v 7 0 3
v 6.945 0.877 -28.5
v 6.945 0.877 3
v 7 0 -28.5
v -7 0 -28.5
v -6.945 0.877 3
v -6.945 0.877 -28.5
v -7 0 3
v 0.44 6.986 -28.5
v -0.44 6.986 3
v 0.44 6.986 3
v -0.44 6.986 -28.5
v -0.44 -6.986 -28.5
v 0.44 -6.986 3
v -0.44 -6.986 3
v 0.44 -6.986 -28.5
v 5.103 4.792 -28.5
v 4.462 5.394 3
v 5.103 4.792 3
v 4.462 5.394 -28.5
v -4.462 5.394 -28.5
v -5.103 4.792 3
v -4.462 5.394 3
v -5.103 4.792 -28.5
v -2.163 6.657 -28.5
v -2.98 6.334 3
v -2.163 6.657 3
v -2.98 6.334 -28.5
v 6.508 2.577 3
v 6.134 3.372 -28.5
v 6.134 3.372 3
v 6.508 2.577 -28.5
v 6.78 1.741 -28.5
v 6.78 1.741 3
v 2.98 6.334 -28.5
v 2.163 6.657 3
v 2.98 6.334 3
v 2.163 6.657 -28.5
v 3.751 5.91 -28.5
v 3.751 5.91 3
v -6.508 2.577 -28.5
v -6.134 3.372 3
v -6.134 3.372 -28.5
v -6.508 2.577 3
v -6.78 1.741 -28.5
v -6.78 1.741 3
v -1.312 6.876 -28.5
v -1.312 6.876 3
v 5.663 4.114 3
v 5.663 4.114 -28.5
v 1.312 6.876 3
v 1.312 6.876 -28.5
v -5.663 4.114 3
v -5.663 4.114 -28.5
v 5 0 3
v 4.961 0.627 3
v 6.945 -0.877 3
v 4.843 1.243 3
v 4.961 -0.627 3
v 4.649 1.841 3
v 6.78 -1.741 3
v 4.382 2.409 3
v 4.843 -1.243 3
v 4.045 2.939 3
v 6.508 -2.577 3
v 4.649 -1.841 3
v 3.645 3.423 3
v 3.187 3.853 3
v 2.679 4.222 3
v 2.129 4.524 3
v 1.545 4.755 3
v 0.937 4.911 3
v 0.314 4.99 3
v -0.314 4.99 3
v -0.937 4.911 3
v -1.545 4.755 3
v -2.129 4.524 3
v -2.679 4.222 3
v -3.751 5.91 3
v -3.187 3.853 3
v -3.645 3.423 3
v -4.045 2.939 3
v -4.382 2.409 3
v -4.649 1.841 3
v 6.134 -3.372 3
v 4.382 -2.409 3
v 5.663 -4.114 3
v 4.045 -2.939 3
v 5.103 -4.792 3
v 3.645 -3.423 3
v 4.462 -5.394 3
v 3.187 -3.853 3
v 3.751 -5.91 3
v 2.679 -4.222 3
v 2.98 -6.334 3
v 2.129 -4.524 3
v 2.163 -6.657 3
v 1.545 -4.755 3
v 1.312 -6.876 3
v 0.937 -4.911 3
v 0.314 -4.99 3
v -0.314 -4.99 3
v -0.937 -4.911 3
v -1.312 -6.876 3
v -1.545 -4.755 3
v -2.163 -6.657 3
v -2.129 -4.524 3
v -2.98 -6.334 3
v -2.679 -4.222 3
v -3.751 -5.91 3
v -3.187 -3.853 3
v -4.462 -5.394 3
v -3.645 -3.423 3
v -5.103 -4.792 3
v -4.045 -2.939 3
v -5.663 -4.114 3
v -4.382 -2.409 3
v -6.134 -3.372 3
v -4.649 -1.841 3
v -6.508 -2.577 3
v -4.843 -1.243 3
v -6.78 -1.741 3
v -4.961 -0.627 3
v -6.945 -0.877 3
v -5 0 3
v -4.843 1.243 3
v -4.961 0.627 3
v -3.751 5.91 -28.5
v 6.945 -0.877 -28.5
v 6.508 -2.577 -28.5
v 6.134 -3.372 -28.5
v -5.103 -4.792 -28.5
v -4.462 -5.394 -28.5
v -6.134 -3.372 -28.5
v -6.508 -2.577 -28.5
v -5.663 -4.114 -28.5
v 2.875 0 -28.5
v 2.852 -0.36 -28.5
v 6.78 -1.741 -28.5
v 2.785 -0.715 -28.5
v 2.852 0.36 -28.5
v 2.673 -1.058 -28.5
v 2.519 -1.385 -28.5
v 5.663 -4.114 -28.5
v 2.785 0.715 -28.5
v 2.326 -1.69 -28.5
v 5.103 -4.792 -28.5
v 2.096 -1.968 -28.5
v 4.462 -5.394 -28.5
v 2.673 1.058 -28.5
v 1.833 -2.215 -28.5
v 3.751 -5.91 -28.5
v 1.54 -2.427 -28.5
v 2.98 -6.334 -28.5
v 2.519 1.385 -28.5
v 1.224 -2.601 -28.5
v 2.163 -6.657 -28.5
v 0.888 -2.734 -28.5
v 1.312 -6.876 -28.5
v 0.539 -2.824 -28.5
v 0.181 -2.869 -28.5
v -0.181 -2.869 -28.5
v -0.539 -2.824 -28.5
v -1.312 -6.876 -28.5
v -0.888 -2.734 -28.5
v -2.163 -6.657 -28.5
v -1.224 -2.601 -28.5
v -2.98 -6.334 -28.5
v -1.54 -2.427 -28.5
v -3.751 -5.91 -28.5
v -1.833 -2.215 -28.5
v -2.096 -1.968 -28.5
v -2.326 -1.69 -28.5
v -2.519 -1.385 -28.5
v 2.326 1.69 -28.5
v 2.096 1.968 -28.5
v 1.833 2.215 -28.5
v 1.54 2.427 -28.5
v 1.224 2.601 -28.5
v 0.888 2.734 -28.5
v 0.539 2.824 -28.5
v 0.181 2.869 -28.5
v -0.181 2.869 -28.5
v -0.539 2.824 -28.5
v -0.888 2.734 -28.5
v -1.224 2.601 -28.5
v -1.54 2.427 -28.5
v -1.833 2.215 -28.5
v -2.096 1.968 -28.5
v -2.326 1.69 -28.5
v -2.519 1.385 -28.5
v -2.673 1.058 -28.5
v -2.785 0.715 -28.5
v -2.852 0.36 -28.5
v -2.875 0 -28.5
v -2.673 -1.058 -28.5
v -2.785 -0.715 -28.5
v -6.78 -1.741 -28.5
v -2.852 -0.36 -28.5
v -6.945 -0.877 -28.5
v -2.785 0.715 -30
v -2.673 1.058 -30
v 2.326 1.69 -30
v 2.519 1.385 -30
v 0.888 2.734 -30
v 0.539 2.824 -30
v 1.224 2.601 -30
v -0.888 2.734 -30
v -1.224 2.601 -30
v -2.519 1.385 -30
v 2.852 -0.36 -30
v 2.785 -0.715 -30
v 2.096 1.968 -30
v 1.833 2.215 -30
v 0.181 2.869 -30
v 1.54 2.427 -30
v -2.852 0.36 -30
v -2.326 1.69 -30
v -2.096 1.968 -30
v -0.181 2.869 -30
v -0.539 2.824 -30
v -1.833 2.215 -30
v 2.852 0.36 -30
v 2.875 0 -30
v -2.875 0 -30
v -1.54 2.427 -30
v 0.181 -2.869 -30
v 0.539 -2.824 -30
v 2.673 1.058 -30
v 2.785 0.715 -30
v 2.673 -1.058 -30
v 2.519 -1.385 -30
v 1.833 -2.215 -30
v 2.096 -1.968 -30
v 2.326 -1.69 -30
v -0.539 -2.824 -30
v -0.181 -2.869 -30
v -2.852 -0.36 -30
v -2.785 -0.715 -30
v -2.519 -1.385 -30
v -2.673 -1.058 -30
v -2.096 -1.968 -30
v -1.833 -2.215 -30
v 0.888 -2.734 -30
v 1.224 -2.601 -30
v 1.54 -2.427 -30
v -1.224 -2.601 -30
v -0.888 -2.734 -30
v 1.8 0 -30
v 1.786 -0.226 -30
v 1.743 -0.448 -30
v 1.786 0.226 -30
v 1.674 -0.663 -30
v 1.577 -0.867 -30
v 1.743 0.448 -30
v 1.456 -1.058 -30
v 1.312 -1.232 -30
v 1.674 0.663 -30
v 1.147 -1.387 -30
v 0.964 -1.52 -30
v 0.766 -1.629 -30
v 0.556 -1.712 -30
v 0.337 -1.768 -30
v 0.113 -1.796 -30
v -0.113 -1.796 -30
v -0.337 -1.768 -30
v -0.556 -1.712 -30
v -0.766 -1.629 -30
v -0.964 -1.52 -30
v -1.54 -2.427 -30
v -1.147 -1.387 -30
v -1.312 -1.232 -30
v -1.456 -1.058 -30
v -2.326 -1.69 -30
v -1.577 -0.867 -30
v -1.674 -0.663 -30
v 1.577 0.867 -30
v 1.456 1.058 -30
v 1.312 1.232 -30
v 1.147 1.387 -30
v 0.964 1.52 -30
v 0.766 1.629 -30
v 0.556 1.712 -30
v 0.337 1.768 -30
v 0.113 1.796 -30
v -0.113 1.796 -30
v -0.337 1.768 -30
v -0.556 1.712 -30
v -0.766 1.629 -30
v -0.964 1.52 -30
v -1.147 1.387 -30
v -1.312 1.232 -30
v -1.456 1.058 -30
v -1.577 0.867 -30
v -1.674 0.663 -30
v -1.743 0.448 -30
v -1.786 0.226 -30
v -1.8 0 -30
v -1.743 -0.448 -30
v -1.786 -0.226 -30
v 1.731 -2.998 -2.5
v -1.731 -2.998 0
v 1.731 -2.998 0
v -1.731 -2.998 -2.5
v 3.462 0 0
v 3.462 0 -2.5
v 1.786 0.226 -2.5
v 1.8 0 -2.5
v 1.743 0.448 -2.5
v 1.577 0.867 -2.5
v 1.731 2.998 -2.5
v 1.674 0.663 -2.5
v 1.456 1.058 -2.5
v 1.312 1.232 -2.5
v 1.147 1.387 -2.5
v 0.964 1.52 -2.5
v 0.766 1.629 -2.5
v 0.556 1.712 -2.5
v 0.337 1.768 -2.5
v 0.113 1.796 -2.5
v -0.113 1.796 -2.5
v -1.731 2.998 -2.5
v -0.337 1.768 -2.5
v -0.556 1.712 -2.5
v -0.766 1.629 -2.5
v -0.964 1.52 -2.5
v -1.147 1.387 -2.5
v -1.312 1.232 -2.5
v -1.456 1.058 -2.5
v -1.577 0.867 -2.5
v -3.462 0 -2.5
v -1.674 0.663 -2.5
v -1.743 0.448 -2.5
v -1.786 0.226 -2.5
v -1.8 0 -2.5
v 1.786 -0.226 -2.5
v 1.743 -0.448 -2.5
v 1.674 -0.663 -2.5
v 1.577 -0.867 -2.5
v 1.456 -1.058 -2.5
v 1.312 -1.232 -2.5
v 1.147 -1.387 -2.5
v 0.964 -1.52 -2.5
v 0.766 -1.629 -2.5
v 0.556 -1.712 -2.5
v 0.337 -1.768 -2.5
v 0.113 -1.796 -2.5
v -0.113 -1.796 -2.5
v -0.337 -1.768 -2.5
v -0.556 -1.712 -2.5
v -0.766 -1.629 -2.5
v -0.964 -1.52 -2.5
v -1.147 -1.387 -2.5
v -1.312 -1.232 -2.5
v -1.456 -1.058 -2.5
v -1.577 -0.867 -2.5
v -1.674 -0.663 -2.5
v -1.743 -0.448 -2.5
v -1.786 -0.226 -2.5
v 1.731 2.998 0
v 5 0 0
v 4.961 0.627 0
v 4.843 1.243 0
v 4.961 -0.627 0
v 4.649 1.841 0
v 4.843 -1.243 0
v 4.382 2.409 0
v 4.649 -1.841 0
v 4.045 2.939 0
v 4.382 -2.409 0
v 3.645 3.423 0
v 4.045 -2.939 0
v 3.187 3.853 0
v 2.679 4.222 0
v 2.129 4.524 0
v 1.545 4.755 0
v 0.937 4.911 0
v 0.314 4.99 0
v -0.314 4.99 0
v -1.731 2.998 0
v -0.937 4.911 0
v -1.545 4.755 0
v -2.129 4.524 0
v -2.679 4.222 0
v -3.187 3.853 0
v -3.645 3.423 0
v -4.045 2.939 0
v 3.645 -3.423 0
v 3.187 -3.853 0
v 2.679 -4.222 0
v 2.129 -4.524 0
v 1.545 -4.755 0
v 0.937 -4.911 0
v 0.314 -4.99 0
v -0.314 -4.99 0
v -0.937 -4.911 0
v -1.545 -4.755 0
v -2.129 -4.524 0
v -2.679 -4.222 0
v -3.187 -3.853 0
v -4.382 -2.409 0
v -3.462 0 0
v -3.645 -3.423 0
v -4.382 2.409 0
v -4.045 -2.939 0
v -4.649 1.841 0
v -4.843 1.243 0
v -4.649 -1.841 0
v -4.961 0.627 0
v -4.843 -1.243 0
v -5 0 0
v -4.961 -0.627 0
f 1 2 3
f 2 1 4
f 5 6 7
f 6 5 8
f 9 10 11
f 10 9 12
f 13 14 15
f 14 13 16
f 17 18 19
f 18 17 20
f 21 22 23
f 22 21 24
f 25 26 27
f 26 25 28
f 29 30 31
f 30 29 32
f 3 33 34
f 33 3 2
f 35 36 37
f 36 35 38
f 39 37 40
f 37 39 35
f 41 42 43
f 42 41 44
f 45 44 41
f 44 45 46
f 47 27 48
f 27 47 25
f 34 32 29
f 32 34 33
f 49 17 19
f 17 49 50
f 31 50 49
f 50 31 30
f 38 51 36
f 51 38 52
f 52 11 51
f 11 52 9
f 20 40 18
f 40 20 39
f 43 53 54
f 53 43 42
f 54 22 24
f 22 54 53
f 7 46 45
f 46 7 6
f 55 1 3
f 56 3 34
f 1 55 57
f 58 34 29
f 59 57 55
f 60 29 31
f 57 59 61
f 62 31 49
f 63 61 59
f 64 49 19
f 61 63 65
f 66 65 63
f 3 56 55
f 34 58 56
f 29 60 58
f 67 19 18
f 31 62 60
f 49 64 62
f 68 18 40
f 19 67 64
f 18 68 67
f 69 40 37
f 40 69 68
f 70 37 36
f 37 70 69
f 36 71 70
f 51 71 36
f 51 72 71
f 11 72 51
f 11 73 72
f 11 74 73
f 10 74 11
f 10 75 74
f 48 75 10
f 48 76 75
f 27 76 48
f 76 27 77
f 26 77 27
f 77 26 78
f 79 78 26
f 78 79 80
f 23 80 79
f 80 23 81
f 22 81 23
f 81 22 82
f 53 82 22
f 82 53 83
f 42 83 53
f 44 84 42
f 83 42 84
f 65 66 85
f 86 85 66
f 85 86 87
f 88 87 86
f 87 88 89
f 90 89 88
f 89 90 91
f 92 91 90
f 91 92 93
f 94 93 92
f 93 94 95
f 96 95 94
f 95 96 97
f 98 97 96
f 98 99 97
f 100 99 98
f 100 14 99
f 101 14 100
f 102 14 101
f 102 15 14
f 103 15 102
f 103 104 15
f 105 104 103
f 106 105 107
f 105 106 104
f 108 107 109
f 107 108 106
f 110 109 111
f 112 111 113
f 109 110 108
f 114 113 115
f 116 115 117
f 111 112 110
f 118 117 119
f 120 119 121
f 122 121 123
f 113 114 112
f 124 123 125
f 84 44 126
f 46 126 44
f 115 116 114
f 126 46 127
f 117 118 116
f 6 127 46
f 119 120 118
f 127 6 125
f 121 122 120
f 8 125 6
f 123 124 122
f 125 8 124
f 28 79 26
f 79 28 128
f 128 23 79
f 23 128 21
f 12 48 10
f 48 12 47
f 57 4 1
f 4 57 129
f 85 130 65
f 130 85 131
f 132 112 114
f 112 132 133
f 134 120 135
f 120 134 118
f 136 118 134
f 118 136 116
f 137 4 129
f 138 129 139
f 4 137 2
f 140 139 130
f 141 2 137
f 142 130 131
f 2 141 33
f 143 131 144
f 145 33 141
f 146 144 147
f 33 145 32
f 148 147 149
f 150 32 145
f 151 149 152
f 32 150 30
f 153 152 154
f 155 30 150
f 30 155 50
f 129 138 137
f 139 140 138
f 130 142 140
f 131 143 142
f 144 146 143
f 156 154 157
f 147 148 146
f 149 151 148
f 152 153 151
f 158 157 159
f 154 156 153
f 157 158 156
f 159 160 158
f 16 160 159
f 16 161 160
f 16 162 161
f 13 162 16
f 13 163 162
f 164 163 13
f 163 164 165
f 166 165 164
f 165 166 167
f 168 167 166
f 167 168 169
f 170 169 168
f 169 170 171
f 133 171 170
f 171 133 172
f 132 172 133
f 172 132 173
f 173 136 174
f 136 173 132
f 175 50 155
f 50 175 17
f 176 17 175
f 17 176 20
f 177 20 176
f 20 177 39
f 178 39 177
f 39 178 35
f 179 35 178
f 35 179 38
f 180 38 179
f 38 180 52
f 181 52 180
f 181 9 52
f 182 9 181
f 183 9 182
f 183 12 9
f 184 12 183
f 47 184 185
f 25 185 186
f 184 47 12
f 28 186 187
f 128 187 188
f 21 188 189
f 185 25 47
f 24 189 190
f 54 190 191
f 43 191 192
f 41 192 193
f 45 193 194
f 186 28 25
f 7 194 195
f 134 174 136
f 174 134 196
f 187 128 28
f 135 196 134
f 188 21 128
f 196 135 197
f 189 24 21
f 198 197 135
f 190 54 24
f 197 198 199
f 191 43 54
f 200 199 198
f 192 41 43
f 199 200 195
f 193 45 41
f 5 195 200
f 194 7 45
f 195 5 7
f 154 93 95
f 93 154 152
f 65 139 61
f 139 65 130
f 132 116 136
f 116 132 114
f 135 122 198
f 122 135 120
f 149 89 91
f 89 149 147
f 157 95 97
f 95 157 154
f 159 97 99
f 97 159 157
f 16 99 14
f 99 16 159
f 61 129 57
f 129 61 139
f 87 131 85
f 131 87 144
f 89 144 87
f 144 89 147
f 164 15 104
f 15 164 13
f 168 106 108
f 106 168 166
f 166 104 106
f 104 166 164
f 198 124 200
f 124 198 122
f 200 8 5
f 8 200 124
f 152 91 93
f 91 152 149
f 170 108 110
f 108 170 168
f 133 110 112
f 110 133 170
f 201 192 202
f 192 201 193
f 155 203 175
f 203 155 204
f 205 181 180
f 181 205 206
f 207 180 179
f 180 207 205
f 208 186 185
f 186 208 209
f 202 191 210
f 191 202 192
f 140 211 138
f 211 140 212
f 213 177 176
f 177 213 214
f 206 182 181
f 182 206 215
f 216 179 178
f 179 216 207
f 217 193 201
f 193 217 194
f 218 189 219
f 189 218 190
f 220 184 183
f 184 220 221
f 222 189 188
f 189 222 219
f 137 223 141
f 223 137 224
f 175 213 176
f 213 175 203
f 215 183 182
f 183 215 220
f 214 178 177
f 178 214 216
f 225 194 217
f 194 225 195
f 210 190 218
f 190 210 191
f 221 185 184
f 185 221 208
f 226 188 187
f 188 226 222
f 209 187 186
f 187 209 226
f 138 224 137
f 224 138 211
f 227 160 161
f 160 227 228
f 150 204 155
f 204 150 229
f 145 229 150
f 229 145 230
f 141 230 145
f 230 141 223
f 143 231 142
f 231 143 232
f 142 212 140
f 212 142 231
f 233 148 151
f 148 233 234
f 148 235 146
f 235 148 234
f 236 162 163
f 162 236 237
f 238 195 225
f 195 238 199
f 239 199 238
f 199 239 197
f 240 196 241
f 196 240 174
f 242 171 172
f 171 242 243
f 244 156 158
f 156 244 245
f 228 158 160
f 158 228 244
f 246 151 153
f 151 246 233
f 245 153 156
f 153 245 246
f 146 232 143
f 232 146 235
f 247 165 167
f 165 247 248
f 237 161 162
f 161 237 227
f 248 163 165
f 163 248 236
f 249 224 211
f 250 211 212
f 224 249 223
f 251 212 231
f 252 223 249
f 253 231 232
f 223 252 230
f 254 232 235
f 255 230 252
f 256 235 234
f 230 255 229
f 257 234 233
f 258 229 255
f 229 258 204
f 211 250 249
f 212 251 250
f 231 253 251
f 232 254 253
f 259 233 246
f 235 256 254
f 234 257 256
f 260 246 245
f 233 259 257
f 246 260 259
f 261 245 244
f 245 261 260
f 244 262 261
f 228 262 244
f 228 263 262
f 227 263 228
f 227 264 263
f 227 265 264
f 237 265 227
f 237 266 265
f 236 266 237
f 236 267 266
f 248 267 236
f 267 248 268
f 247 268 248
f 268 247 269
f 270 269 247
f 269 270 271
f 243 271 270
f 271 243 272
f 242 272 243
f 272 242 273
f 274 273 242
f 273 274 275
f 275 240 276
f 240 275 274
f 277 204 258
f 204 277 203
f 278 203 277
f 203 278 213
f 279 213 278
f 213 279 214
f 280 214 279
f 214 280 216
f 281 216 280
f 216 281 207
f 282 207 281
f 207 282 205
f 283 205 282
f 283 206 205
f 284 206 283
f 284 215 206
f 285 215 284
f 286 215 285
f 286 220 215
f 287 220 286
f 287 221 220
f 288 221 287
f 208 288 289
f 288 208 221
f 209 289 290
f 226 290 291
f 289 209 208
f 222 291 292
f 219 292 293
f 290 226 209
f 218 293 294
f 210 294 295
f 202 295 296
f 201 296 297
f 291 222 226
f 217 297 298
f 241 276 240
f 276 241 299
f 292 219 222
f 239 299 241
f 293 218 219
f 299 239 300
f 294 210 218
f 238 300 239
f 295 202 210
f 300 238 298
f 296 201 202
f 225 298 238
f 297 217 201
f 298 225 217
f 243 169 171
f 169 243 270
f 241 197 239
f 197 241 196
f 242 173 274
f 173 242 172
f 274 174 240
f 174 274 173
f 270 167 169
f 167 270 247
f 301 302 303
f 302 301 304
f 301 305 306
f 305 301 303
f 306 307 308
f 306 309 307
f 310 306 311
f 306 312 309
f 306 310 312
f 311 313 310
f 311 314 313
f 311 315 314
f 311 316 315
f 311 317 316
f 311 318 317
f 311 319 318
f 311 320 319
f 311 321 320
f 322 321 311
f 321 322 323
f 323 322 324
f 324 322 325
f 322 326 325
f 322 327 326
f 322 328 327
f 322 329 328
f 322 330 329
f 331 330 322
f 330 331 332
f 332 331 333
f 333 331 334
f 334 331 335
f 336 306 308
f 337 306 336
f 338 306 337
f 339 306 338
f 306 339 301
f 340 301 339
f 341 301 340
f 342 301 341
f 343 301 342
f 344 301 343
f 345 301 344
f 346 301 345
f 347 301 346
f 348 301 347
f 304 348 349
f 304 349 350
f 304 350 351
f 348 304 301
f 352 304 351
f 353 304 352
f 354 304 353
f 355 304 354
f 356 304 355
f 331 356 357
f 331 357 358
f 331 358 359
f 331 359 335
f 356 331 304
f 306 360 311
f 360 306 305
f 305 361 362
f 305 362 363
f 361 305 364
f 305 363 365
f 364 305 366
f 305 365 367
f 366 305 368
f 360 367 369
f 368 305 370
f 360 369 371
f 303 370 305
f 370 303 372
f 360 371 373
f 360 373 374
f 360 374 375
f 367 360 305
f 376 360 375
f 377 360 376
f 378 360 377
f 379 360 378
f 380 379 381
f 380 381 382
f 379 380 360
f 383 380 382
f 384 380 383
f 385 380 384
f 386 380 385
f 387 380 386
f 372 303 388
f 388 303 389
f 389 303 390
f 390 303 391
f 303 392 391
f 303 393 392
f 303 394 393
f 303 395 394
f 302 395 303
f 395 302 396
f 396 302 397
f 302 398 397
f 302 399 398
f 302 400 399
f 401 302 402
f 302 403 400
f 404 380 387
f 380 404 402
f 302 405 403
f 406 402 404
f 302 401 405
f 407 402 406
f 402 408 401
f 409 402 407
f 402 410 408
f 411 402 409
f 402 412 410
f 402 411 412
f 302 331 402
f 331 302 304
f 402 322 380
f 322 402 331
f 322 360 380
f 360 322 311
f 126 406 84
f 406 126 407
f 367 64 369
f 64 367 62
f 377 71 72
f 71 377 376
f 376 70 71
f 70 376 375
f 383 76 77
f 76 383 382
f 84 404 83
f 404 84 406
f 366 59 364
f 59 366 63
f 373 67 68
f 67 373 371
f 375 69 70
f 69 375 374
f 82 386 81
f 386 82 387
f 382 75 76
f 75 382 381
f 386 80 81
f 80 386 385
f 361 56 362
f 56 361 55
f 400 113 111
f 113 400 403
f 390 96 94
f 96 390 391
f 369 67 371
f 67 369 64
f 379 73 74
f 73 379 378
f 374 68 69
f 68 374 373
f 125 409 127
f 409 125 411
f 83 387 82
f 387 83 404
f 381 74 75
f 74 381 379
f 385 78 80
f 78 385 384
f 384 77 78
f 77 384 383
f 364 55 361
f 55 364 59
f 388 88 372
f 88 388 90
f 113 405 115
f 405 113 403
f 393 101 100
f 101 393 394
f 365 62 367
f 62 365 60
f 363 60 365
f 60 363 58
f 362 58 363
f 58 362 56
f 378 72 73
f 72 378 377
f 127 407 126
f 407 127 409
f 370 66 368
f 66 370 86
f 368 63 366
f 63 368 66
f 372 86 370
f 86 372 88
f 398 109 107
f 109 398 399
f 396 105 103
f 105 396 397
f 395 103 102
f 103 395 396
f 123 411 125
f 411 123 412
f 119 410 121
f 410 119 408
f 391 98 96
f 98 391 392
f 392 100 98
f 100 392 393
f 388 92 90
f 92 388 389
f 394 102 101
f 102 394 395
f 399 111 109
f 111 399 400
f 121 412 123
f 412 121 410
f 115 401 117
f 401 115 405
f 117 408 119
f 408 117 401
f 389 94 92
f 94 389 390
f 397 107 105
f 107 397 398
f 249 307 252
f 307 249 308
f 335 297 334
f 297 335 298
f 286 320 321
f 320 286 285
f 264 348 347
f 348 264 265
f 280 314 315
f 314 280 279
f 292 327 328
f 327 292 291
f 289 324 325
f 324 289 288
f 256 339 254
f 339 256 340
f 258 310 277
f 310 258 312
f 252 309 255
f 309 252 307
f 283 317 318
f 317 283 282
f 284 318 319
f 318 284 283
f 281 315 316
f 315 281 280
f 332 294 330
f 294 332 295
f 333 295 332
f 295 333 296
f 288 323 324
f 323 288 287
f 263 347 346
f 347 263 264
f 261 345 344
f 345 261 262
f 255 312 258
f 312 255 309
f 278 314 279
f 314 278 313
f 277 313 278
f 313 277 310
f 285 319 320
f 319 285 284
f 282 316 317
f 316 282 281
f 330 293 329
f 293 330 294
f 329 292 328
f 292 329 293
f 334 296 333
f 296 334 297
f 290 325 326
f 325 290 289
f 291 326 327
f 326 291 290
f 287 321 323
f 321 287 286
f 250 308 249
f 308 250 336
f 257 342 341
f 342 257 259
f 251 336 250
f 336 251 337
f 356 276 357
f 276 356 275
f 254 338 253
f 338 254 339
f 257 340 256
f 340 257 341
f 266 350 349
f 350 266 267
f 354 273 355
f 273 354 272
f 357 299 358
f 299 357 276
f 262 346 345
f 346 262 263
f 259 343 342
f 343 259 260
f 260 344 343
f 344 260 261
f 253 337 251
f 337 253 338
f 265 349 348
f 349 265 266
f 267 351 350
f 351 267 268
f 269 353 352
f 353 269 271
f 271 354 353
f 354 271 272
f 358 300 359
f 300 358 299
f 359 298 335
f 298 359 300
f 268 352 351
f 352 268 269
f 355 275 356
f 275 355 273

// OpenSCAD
$fn = 50;


difference() {
	union() {
		translate(v = [0, 0, -28.5000000000]) {
			cylinder(h = 31.5000000000, r = 7.0000000000);
		}
		#translate(v = [0, 0, -30.0000000000]) {
			cylinder(h = 30, r = 2.8750000000);
		}
	}
	union() {
		translate(v = [0, 0, 0]) {
			rotate(a = [0, 0, 0]) {
				difference() {
					union() {
						translate(v = [0, 0, -2.5000000000]) {
							linear_extrude(height = 2.5000000000) {
								polygon(points = [[3.4620000000, 0.0000000000], [1.7310000000, 2.9981799479], [-1.7310000000, 2.9981799479], [-3.4620000000, 0.0000000000], [-1.7310000000, -2.9981799479], [1.7310000000, -2.9981799479]]);
							}
						}
					}
					union();
				}
			}
		}
		#cylinder(h = 3, r = 5.0000000000);
		#translate(v = [0, 0, -100.0000000000]) {
			cylinder(h = 200, r = 1.8000000000);
		}
	}
}
